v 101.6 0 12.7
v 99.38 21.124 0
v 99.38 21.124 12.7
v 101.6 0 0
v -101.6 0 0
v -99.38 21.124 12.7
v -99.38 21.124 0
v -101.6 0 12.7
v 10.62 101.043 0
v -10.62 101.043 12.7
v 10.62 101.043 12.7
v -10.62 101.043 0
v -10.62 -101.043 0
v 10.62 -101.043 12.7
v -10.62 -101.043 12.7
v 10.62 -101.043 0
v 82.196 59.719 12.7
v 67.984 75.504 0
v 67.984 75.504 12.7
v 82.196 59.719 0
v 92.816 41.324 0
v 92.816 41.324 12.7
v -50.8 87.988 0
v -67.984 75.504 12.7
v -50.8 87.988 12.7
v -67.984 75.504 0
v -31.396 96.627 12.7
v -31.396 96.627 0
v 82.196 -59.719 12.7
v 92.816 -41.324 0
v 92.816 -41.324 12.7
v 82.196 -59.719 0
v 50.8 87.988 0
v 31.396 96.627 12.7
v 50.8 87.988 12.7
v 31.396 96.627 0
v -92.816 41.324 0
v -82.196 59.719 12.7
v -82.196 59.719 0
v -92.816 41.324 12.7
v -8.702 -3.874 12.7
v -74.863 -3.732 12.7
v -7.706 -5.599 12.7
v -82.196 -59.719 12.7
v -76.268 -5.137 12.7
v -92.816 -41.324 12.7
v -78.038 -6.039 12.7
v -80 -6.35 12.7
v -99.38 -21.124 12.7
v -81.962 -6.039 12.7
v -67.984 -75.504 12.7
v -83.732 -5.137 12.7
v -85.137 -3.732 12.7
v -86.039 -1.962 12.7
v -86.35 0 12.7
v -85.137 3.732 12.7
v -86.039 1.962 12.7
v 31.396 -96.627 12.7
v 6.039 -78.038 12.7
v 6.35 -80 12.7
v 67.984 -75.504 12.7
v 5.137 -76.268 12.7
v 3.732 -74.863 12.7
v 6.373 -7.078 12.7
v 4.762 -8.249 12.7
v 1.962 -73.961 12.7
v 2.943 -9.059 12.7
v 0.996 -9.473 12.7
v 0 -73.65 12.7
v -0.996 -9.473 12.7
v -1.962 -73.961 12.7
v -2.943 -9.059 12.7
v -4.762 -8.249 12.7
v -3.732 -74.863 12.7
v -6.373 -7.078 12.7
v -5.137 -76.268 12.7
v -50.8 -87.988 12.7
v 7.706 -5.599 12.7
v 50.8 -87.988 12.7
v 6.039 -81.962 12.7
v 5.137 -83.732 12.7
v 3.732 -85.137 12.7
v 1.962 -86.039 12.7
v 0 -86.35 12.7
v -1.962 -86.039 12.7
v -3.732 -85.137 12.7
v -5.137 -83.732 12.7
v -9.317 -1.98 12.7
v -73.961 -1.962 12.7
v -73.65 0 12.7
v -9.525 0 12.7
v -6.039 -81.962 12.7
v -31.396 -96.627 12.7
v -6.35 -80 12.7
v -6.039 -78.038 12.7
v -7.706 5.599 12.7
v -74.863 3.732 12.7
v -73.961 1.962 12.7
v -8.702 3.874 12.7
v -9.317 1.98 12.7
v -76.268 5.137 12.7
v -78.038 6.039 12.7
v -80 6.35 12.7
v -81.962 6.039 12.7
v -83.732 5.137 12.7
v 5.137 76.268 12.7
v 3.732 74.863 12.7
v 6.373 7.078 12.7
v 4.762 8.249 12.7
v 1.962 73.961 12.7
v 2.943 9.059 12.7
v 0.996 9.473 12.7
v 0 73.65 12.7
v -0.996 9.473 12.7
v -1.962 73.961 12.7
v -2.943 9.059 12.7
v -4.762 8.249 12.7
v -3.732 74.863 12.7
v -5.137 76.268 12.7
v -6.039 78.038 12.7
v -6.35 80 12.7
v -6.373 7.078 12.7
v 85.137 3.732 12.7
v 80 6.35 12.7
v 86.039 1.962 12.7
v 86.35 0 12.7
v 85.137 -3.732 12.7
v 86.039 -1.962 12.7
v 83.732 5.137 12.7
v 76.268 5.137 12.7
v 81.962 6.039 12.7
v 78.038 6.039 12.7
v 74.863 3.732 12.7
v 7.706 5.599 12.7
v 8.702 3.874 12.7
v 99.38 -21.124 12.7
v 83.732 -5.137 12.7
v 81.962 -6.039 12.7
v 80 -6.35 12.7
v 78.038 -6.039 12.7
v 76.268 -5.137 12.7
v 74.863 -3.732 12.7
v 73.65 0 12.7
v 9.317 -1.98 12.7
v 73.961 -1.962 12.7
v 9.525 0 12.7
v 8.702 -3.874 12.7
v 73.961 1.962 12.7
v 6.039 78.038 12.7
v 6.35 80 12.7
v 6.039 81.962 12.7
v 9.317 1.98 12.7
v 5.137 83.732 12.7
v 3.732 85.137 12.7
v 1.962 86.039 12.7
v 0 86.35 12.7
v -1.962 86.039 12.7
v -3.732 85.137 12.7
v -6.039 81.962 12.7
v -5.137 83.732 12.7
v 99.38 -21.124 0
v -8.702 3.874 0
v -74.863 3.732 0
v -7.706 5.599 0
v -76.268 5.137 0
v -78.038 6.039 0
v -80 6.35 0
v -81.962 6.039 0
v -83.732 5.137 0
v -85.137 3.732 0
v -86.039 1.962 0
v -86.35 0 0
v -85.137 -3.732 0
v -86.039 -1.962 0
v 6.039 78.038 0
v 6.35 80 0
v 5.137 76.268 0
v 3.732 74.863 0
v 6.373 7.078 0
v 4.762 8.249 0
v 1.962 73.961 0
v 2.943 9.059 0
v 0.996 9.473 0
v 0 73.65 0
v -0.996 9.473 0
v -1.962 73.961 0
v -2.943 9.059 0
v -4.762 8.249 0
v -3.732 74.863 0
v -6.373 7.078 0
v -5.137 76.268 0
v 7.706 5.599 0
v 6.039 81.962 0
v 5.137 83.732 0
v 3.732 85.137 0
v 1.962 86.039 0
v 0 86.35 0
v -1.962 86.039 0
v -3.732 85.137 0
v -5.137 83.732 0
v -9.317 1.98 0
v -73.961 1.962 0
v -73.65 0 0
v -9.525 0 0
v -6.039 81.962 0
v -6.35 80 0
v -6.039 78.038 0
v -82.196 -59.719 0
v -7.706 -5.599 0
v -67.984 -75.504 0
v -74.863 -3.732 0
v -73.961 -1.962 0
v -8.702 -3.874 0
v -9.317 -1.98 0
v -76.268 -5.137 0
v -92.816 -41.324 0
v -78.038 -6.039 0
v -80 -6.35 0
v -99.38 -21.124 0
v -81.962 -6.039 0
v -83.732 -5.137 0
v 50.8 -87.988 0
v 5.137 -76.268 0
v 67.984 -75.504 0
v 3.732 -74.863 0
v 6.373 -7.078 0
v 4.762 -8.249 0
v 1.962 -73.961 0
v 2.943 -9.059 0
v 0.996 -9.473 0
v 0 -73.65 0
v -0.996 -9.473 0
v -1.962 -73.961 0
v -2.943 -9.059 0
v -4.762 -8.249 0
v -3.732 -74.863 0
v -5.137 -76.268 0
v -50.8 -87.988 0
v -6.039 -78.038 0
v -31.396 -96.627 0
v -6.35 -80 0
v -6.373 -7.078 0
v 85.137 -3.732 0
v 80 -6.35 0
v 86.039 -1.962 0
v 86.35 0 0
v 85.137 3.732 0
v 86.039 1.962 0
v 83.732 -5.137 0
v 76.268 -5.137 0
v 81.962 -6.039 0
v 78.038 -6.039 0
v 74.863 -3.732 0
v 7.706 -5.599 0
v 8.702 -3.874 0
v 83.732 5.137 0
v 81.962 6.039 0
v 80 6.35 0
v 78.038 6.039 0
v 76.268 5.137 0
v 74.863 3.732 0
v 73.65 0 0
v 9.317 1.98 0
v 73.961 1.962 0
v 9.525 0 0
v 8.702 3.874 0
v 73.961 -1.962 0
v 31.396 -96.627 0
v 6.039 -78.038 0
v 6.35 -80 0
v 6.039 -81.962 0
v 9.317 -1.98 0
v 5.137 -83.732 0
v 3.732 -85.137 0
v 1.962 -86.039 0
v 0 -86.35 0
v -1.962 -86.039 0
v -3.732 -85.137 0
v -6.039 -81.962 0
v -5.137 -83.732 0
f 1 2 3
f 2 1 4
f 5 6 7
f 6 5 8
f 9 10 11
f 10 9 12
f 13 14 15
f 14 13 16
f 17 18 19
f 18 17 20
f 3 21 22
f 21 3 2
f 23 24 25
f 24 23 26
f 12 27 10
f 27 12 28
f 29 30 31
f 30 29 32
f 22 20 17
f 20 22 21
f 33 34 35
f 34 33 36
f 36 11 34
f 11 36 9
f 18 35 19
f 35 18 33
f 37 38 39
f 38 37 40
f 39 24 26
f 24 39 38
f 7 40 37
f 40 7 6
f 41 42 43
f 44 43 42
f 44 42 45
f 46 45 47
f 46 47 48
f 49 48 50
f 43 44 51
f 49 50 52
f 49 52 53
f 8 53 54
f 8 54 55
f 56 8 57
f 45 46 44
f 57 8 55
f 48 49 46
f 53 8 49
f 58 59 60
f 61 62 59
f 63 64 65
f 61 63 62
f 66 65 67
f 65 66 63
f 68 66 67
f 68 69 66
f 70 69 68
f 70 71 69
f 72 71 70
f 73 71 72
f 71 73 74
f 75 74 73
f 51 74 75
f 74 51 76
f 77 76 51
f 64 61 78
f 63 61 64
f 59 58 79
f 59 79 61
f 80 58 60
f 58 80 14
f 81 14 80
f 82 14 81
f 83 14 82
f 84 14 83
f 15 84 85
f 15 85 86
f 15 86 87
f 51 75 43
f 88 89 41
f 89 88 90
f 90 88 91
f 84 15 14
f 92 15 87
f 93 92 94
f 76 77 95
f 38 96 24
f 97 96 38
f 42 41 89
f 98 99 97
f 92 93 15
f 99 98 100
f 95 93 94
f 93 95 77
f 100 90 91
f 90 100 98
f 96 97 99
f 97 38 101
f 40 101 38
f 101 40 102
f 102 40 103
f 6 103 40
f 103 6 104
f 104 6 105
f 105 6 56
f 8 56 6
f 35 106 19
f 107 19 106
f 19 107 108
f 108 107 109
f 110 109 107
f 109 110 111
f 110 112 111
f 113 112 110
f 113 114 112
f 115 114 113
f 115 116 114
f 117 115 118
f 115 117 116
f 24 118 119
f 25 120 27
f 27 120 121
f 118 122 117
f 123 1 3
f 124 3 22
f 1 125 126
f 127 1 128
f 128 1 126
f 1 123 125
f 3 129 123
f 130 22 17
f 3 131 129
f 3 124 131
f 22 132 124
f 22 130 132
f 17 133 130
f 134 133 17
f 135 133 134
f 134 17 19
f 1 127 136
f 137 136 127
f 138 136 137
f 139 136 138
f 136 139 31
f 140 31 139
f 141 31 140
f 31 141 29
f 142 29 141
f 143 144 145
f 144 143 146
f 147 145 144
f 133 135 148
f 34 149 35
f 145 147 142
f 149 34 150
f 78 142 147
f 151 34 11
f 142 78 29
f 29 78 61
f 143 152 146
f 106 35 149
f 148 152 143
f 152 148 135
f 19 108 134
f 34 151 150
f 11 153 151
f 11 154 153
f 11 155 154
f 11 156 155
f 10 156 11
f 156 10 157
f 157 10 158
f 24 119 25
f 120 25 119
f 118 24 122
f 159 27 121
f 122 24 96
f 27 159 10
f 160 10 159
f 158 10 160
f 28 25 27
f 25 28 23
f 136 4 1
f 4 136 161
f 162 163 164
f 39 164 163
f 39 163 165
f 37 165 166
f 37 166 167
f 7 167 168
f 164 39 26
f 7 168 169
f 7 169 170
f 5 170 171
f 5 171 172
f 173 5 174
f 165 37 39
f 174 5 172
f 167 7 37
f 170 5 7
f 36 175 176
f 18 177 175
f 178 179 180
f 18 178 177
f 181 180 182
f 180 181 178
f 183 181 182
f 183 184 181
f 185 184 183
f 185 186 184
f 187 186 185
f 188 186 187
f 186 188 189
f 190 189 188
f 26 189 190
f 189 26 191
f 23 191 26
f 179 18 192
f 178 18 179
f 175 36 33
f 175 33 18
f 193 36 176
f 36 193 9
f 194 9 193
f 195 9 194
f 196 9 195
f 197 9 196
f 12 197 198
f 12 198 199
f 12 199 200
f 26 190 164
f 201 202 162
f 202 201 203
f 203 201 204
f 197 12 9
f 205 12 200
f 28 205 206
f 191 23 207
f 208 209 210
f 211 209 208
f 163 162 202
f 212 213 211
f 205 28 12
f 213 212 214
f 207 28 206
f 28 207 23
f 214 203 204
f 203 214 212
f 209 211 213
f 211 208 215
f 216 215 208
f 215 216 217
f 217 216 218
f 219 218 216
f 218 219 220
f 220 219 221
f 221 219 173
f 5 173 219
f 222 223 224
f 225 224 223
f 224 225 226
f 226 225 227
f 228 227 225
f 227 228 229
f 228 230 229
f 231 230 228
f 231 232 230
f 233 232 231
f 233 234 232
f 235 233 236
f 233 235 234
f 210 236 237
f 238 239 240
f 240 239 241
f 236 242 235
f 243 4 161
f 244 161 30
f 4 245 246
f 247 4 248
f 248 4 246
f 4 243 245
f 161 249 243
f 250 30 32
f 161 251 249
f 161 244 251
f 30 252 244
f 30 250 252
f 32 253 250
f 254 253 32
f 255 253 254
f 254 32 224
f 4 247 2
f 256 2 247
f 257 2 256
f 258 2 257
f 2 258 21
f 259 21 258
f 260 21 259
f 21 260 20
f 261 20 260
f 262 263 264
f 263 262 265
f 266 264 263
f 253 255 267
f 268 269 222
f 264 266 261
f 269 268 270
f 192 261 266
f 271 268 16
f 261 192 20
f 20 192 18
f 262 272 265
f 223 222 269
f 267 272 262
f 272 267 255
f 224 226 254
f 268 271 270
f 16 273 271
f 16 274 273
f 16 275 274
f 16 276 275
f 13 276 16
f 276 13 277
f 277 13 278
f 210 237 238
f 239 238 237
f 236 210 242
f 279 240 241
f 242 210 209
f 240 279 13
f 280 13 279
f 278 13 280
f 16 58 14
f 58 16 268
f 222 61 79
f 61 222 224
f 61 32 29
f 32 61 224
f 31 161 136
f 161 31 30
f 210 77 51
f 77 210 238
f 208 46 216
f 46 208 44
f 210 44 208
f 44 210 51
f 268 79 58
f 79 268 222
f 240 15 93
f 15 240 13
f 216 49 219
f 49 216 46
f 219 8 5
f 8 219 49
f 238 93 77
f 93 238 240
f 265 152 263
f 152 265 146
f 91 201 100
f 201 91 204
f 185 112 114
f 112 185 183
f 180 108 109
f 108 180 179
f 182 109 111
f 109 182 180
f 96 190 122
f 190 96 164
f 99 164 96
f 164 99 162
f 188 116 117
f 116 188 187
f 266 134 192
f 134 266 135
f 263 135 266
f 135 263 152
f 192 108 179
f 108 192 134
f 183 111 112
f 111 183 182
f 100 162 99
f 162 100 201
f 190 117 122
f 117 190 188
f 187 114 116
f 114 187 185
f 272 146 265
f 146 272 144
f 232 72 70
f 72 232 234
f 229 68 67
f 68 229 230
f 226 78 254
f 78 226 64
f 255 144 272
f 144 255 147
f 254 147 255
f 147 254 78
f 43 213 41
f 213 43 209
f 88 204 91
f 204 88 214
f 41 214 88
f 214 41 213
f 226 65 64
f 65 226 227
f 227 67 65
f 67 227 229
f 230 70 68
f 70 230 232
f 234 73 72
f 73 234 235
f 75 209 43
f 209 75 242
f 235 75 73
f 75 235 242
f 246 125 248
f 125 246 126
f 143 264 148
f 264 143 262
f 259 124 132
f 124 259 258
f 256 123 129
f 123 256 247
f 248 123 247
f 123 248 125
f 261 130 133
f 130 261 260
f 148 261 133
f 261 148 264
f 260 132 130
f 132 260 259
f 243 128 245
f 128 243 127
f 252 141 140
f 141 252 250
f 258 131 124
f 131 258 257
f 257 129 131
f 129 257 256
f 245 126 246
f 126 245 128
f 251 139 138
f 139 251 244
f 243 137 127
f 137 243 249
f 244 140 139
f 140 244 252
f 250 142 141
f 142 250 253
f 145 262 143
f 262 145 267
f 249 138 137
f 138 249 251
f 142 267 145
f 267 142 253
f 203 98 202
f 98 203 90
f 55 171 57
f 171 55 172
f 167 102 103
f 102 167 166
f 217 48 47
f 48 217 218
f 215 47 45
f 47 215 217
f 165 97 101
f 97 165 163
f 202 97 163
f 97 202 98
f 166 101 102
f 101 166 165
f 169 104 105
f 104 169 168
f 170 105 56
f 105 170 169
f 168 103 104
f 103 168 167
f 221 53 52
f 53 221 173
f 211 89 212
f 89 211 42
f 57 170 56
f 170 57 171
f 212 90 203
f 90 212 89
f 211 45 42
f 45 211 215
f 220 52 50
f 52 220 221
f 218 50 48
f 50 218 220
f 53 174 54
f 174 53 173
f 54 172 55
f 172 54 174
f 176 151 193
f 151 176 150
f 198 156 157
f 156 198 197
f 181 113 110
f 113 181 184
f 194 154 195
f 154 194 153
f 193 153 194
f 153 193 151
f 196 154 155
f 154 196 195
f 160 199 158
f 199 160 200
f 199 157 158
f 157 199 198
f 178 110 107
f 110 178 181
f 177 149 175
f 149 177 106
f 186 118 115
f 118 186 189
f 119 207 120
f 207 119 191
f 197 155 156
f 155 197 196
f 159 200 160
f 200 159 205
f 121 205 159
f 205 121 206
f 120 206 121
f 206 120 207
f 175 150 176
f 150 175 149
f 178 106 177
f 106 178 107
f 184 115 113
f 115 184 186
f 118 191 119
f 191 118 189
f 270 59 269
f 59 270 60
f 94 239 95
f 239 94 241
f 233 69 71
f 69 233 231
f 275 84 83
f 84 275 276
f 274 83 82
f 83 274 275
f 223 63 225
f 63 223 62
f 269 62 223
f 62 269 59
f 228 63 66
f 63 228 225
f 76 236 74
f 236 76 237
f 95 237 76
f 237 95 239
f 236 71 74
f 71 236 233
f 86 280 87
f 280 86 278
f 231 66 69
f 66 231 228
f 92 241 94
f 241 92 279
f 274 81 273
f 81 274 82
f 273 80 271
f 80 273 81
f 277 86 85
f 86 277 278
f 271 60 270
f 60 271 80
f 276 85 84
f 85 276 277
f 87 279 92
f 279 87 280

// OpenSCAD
difference()
{
    //aluminum blank bottom 
    //Height: 0.5inch height = 12.7mm 
    //Diameter: 4 inch diameter = 101.6mm
    cylinder(h = 12.7, r = 101.6); 

    //middle holes 1/4 inch = 6.35mm9.525
    cylinder(h = 12.8, r = 9.525); 
    
    //smaller holes 1/4 inch = 6.35mm
    translate([80,0,0]) cylinder(h = 12.8, r = 6.35); 

    translate([-80,0,0]) cylinder(h = 12.8, r = 6.35); 
    
    translate([0,80,0]) cylinder(h = 12.8, r = 6.35); 
    
    translate([0,-80,0]) cylinder(h = 12.8, r = 6.35);
    
}
